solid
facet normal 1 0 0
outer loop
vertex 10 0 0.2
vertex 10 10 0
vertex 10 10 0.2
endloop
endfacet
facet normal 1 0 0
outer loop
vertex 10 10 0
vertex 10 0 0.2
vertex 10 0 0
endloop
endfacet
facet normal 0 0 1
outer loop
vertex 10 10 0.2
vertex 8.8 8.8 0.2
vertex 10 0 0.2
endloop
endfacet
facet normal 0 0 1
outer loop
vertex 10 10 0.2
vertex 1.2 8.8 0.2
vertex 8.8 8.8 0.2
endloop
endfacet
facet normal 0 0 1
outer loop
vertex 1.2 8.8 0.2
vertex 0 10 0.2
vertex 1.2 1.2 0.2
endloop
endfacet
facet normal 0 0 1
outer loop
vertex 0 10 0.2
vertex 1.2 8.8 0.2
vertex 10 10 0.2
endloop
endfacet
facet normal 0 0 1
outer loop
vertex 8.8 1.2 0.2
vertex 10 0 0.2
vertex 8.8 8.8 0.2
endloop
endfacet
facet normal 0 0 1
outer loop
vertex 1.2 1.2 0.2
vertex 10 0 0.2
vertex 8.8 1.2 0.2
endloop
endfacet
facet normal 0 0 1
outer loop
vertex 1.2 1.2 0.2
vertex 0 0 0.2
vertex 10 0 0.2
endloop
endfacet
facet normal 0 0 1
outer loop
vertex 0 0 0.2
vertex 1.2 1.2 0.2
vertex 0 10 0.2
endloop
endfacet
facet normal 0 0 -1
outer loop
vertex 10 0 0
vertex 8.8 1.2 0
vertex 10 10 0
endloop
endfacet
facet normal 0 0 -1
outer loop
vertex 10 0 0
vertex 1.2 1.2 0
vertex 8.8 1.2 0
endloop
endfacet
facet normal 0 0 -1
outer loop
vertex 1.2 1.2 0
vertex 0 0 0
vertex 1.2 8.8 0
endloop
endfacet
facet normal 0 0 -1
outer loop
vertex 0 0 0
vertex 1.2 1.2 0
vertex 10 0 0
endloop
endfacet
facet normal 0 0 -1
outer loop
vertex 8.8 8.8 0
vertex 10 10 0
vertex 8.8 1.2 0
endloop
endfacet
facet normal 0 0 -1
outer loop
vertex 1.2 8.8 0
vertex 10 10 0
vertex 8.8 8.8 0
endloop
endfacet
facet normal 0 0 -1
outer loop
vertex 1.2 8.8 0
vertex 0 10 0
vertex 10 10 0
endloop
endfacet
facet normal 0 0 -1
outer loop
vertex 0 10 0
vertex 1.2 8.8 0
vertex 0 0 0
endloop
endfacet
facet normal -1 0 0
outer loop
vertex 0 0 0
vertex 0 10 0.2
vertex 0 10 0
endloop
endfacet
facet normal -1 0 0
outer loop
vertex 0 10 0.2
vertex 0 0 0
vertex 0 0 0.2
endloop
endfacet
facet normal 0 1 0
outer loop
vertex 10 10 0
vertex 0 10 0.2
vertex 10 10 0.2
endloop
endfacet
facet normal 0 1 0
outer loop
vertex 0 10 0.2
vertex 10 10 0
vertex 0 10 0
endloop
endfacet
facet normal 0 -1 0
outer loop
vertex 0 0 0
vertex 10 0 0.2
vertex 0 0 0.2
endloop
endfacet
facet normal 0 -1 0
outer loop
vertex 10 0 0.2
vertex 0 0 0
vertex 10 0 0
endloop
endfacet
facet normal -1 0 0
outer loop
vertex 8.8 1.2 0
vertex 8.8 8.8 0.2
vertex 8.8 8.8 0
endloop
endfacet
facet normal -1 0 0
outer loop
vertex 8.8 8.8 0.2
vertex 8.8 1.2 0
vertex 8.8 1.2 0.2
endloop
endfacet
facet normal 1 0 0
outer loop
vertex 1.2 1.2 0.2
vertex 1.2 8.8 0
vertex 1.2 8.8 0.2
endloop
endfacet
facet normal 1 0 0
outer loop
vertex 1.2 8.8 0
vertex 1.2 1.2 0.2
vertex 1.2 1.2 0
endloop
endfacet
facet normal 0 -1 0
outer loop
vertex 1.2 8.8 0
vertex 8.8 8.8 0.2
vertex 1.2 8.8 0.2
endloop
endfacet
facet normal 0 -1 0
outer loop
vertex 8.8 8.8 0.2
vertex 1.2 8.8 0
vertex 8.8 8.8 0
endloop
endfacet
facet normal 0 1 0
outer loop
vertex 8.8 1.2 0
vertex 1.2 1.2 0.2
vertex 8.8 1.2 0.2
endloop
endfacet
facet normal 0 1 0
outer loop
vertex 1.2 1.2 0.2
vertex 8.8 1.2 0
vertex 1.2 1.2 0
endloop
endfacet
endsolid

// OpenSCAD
// test square for understanding GCODE
//
// openscad -o slicer_examples/square_test.stl slicer_examples/square_test.scad

$fs = 0.1;
$fn = 60;

module square_test(layer_height, nozzle_diameter, length, thickness) {
    printer_thickness = nozzle_diameter * thickness;
    center_cut = length - (2 * printer_thickness);

    difference() {
        cube(size=[length, length, layer_height]);

        translate([printer_thickness, printer_thickness, 0])
            cube(size=[center_cut, center_cut, layer_height]);
    }
}

square_test(0.2, 0.4, 10, 3);
